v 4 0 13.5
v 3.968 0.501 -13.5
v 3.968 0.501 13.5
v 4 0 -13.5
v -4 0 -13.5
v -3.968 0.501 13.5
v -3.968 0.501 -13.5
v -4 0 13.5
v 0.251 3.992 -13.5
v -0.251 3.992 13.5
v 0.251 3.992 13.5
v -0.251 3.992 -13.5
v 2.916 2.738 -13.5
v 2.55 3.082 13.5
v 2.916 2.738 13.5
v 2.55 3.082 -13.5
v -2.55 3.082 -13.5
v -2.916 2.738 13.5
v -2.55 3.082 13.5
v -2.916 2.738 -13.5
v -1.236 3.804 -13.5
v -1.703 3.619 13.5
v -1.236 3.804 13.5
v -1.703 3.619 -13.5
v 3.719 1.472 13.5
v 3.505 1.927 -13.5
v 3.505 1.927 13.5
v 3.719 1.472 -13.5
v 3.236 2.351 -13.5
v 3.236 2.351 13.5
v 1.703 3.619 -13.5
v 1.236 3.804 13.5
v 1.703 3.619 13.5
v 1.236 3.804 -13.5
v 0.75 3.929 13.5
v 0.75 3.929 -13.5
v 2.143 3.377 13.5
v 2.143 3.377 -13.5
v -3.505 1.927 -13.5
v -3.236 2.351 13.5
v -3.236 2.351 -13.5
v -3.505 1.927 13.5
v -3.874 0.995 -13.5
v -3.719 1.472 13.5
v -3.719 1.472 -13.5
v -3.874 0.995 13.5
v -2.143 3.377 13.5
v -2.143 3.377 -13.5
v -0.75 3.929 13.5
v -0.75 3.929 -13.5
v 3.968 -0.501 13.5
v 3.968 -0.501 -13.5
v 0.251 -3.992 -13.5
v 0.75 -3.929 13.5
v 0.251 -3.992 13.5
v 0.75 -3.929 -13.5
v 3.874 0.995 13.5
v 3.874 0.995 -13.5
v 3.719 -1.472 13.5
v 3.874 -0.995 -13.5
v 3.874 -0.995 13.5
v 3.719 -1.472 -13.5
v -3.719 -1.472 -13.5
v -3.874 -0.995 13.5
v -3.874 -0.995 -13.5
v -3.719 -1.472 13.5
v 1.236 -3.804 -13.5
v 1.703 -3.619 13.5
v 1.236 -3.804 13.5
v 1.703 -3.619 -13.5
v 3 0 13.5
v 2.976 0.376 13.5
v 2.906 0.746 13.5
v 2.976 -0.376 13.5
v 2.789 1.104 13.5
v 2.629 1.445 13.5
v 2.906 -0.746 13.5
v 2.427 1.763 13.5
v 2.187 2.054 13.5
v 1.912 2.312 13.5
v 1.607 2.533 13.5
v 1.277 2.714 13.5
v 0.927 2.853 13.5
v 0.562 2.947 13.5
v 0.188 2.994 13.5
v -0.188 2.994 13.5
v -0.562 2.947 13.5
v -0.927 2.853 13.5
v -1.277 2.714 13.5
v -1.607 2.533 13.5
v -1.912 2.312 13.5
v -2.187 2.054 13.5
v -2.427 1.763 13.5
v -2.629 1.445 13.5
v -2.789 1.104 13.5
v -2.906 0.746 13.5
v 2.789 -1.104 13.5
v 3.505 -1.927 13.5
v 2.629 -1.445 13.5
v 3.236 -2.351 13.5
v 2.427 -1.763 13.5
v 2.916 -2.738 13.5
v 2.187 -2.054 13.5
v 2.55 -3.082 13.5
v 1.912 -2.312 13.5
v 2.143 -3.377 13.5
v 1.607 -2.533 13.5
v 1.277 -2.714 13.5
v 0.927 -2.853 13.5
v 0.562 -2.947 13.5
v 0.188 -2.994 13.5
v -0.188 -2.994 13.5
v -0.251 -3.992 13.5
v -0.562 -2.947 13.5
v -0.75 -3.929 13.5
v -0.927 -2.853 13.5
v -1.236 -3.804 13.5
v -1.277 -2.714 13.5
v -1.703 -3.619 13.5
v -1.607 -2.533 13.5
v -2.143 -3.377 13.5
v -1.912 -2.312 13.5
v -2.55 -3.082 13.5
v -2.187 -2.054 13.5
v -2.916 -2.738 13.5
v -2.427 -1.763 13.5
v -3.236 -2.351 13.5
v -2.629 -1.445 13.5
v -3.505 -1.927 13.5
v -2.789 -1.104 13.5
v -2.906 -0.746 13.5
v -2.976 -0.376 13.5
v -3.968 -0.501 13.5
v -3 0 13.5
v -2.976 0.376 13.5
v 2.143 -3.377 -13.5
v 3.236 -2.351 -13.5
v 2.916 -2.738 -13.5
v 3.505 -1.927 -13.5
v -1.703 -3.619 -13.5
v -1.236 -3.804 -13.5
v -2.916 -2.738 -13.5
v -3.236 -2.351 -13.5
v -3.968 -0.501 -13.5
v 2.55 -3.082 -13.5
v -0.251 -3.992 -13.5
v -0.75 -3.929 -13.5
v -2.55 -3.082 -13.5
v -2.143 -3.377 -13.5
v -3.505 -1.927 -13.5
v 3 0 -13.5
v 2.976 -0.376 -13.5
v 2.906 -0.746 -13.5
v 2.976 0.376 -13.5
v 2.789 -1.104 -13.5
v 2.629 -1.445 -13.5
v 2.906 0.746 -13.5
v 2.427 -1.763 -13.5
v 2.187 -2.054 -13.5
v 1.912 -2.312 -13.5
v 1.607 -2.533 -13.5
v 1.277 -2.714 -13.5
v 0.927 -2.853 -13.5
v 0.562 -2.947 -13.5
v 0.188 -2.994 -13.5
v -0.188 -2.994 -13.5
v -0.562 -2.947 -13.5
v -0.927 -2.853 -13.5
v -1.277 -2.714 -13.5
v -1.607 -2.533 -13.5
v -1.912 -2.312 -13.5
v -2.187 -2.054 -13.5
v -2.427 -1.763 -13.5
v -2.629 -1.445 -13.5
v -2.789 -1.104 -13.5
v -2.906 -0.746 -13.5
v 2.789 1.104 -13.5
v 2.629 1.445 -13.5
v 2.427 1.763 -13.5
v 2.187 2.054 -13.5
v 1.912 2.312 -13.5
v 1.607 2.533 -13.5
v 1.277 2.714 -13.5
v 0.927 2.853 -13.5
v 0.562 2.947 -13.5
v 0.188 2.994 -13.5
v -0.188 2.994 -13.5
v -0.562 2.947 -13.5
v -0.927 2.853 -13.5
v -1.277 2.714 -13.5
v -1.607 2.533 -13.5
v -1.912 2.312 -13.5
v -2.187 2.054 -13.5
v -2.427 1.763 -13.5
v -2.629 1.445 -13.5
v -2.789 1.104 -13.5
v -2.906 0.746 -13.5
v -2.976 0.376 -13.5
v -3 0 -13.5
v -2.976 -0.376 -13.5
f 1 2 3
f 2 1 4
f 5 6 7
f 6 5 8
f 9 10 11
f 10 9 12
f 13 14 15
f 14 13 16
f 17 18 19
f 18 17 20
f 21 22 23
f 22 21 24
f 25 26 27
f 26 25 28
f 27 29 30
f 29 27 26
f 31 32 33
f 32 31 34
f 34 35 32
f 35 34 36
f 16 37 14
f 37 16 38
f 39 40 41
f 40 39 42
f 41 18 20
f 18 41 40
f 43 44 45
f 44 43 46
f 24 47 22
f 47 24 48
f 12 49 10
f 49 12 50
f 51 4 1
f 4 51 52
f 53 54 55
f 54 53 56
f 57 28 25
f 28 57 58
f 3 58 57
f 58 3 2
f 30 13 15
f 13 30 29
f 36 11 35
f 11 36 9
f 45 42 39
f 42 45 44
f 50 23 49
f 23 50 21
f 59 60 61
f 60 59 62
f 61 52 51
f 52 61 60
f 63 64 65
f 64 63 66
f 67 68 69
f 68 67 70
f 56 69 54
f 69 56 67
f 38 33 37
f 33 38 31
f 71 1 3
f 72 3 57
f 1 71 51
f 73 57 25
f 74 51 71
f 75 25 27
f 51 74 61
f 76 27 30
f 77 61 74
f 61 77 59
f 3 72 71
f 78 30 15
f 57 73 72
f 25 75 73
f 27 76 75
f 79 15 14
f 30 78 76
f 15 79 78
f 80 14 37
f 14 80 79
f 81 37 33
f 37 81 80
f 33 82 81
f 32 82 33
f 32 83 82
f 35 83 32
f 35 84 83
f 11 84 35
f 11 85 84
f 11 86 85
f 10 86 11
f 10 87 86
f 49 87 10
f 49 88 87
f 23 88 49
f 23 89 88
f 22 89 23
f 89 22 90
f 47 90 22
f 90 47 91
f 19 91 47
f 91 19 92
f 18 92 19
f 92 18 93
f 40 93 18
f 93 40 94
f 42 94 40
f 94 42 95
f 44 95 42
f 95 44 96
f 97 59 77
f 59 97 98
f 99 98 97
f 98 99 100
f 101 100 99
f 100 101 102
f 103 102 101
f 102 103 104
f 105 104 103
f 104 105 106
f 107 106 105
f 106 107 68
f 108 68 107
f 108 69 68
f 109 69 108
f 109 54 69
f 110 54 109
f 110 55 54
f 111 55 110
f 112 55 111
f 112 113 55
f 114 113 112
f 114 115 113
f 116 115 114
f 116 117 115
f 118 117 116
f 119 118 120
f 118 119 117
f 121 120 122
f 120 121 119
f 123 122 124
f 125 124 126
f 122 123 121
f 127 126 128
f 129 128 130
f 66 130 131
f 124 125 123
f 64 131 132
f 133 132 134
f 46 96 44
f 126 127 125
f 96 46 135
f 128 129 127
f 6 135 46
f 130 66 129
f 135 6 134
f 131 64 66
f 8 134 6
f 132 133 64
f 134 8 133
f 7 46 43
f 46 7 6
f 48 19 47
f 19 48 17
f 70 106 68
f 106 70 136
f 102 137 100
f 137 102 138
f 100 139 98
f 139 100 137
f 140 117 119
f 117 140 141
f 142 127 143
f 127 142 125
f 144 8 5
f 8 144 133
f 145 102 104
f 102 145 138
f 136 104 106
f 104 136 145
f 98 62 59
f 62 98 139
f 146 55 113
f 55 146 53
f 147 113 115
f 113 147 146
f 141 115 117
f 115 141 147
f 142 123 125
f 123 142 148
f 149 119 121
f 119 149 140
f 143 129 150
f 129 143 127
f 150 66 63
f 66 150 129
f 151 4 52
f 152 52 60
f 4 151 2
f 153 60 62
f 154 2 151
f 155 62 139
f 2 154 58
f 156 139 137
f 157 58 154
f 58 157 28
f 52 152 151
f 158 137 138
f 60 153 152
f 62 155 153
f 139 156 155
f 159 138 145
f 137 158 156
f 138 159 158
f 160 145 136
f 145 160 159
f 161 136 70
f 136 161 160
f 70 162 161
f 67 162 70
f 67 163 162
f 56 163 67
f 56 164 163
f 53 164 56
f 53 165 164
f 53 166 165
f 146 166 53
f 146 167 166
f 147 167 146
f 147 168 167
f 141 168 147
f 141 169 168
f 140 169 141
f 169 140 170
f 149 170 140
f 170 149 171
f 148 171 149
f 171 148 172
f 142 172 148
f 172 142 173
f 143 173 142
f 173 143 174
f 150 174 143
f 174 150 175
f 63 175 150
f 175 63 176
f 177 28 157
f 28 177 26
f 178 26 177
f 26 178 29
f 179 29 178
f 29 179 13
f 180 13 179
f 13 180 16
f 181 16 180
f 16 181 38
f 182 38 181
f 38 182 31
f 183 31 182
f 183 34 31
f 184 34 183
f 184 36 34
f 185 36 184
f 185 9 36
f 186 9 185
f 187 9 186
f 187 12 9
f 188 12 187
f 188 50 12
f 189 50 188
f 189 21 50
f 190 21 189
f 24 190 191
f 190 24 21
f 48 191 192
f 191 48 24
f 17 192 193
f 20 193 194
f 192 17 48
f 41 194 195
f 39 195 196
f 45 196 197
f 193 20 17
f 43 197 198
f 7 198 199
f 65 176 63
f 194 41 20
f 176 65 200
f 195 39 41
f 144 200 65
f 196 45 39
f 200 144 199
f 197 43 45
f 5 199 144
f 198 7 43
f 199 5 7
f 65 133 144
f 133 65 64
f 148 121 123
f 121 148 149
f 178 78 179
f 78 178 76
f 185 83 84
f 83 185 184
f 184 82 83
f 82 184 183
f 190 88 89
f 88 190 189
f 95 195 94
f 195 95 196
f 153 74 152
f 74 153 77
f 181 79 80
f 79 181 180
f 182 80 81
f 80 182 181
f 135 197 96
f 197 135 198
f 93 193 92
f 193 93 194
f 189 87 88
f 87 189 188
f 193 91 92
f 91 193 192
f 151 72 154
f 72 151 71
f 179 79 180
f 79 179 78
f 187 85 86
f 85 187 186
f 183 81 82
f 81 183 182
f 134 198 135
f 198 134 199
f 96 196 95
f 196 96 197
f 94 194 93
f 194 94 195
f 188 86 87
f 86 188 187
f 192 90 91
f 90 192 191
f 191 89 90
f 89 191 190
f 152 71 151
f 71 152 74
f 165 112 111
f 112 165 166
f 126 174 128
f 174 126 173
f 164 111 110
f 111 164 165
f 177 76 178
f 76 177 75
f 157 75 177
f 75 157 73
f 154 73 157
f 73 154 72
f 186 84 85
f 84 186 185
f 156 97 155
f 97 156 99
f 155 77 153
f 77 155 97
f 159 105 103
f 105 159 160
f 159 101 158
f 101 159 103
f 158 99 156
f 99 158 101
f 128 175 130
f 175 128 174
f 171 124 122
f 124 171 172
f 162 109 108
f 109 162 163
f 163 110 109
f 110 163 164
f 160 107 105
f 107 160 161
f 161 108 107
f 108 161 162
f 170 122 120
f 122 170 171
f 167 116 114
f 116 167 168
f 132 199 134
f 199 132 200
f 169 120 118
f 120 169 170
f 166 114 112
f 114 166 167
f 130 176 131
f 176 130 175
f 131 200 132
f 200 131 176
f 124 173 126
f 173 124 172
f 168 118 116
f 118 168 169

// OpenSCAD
$fn = 50;


difference() {
	union() {
		translate(v = [0, 0, -13.5000000000]) {
			cylinder(h = 27, r = 4.0000000000);
		}
	}
	union() {
		translate(v = [0, 0, -100.0000000000]) {
			cylinder(h = 200, r = 3.0000000000);
		}
	}
}
